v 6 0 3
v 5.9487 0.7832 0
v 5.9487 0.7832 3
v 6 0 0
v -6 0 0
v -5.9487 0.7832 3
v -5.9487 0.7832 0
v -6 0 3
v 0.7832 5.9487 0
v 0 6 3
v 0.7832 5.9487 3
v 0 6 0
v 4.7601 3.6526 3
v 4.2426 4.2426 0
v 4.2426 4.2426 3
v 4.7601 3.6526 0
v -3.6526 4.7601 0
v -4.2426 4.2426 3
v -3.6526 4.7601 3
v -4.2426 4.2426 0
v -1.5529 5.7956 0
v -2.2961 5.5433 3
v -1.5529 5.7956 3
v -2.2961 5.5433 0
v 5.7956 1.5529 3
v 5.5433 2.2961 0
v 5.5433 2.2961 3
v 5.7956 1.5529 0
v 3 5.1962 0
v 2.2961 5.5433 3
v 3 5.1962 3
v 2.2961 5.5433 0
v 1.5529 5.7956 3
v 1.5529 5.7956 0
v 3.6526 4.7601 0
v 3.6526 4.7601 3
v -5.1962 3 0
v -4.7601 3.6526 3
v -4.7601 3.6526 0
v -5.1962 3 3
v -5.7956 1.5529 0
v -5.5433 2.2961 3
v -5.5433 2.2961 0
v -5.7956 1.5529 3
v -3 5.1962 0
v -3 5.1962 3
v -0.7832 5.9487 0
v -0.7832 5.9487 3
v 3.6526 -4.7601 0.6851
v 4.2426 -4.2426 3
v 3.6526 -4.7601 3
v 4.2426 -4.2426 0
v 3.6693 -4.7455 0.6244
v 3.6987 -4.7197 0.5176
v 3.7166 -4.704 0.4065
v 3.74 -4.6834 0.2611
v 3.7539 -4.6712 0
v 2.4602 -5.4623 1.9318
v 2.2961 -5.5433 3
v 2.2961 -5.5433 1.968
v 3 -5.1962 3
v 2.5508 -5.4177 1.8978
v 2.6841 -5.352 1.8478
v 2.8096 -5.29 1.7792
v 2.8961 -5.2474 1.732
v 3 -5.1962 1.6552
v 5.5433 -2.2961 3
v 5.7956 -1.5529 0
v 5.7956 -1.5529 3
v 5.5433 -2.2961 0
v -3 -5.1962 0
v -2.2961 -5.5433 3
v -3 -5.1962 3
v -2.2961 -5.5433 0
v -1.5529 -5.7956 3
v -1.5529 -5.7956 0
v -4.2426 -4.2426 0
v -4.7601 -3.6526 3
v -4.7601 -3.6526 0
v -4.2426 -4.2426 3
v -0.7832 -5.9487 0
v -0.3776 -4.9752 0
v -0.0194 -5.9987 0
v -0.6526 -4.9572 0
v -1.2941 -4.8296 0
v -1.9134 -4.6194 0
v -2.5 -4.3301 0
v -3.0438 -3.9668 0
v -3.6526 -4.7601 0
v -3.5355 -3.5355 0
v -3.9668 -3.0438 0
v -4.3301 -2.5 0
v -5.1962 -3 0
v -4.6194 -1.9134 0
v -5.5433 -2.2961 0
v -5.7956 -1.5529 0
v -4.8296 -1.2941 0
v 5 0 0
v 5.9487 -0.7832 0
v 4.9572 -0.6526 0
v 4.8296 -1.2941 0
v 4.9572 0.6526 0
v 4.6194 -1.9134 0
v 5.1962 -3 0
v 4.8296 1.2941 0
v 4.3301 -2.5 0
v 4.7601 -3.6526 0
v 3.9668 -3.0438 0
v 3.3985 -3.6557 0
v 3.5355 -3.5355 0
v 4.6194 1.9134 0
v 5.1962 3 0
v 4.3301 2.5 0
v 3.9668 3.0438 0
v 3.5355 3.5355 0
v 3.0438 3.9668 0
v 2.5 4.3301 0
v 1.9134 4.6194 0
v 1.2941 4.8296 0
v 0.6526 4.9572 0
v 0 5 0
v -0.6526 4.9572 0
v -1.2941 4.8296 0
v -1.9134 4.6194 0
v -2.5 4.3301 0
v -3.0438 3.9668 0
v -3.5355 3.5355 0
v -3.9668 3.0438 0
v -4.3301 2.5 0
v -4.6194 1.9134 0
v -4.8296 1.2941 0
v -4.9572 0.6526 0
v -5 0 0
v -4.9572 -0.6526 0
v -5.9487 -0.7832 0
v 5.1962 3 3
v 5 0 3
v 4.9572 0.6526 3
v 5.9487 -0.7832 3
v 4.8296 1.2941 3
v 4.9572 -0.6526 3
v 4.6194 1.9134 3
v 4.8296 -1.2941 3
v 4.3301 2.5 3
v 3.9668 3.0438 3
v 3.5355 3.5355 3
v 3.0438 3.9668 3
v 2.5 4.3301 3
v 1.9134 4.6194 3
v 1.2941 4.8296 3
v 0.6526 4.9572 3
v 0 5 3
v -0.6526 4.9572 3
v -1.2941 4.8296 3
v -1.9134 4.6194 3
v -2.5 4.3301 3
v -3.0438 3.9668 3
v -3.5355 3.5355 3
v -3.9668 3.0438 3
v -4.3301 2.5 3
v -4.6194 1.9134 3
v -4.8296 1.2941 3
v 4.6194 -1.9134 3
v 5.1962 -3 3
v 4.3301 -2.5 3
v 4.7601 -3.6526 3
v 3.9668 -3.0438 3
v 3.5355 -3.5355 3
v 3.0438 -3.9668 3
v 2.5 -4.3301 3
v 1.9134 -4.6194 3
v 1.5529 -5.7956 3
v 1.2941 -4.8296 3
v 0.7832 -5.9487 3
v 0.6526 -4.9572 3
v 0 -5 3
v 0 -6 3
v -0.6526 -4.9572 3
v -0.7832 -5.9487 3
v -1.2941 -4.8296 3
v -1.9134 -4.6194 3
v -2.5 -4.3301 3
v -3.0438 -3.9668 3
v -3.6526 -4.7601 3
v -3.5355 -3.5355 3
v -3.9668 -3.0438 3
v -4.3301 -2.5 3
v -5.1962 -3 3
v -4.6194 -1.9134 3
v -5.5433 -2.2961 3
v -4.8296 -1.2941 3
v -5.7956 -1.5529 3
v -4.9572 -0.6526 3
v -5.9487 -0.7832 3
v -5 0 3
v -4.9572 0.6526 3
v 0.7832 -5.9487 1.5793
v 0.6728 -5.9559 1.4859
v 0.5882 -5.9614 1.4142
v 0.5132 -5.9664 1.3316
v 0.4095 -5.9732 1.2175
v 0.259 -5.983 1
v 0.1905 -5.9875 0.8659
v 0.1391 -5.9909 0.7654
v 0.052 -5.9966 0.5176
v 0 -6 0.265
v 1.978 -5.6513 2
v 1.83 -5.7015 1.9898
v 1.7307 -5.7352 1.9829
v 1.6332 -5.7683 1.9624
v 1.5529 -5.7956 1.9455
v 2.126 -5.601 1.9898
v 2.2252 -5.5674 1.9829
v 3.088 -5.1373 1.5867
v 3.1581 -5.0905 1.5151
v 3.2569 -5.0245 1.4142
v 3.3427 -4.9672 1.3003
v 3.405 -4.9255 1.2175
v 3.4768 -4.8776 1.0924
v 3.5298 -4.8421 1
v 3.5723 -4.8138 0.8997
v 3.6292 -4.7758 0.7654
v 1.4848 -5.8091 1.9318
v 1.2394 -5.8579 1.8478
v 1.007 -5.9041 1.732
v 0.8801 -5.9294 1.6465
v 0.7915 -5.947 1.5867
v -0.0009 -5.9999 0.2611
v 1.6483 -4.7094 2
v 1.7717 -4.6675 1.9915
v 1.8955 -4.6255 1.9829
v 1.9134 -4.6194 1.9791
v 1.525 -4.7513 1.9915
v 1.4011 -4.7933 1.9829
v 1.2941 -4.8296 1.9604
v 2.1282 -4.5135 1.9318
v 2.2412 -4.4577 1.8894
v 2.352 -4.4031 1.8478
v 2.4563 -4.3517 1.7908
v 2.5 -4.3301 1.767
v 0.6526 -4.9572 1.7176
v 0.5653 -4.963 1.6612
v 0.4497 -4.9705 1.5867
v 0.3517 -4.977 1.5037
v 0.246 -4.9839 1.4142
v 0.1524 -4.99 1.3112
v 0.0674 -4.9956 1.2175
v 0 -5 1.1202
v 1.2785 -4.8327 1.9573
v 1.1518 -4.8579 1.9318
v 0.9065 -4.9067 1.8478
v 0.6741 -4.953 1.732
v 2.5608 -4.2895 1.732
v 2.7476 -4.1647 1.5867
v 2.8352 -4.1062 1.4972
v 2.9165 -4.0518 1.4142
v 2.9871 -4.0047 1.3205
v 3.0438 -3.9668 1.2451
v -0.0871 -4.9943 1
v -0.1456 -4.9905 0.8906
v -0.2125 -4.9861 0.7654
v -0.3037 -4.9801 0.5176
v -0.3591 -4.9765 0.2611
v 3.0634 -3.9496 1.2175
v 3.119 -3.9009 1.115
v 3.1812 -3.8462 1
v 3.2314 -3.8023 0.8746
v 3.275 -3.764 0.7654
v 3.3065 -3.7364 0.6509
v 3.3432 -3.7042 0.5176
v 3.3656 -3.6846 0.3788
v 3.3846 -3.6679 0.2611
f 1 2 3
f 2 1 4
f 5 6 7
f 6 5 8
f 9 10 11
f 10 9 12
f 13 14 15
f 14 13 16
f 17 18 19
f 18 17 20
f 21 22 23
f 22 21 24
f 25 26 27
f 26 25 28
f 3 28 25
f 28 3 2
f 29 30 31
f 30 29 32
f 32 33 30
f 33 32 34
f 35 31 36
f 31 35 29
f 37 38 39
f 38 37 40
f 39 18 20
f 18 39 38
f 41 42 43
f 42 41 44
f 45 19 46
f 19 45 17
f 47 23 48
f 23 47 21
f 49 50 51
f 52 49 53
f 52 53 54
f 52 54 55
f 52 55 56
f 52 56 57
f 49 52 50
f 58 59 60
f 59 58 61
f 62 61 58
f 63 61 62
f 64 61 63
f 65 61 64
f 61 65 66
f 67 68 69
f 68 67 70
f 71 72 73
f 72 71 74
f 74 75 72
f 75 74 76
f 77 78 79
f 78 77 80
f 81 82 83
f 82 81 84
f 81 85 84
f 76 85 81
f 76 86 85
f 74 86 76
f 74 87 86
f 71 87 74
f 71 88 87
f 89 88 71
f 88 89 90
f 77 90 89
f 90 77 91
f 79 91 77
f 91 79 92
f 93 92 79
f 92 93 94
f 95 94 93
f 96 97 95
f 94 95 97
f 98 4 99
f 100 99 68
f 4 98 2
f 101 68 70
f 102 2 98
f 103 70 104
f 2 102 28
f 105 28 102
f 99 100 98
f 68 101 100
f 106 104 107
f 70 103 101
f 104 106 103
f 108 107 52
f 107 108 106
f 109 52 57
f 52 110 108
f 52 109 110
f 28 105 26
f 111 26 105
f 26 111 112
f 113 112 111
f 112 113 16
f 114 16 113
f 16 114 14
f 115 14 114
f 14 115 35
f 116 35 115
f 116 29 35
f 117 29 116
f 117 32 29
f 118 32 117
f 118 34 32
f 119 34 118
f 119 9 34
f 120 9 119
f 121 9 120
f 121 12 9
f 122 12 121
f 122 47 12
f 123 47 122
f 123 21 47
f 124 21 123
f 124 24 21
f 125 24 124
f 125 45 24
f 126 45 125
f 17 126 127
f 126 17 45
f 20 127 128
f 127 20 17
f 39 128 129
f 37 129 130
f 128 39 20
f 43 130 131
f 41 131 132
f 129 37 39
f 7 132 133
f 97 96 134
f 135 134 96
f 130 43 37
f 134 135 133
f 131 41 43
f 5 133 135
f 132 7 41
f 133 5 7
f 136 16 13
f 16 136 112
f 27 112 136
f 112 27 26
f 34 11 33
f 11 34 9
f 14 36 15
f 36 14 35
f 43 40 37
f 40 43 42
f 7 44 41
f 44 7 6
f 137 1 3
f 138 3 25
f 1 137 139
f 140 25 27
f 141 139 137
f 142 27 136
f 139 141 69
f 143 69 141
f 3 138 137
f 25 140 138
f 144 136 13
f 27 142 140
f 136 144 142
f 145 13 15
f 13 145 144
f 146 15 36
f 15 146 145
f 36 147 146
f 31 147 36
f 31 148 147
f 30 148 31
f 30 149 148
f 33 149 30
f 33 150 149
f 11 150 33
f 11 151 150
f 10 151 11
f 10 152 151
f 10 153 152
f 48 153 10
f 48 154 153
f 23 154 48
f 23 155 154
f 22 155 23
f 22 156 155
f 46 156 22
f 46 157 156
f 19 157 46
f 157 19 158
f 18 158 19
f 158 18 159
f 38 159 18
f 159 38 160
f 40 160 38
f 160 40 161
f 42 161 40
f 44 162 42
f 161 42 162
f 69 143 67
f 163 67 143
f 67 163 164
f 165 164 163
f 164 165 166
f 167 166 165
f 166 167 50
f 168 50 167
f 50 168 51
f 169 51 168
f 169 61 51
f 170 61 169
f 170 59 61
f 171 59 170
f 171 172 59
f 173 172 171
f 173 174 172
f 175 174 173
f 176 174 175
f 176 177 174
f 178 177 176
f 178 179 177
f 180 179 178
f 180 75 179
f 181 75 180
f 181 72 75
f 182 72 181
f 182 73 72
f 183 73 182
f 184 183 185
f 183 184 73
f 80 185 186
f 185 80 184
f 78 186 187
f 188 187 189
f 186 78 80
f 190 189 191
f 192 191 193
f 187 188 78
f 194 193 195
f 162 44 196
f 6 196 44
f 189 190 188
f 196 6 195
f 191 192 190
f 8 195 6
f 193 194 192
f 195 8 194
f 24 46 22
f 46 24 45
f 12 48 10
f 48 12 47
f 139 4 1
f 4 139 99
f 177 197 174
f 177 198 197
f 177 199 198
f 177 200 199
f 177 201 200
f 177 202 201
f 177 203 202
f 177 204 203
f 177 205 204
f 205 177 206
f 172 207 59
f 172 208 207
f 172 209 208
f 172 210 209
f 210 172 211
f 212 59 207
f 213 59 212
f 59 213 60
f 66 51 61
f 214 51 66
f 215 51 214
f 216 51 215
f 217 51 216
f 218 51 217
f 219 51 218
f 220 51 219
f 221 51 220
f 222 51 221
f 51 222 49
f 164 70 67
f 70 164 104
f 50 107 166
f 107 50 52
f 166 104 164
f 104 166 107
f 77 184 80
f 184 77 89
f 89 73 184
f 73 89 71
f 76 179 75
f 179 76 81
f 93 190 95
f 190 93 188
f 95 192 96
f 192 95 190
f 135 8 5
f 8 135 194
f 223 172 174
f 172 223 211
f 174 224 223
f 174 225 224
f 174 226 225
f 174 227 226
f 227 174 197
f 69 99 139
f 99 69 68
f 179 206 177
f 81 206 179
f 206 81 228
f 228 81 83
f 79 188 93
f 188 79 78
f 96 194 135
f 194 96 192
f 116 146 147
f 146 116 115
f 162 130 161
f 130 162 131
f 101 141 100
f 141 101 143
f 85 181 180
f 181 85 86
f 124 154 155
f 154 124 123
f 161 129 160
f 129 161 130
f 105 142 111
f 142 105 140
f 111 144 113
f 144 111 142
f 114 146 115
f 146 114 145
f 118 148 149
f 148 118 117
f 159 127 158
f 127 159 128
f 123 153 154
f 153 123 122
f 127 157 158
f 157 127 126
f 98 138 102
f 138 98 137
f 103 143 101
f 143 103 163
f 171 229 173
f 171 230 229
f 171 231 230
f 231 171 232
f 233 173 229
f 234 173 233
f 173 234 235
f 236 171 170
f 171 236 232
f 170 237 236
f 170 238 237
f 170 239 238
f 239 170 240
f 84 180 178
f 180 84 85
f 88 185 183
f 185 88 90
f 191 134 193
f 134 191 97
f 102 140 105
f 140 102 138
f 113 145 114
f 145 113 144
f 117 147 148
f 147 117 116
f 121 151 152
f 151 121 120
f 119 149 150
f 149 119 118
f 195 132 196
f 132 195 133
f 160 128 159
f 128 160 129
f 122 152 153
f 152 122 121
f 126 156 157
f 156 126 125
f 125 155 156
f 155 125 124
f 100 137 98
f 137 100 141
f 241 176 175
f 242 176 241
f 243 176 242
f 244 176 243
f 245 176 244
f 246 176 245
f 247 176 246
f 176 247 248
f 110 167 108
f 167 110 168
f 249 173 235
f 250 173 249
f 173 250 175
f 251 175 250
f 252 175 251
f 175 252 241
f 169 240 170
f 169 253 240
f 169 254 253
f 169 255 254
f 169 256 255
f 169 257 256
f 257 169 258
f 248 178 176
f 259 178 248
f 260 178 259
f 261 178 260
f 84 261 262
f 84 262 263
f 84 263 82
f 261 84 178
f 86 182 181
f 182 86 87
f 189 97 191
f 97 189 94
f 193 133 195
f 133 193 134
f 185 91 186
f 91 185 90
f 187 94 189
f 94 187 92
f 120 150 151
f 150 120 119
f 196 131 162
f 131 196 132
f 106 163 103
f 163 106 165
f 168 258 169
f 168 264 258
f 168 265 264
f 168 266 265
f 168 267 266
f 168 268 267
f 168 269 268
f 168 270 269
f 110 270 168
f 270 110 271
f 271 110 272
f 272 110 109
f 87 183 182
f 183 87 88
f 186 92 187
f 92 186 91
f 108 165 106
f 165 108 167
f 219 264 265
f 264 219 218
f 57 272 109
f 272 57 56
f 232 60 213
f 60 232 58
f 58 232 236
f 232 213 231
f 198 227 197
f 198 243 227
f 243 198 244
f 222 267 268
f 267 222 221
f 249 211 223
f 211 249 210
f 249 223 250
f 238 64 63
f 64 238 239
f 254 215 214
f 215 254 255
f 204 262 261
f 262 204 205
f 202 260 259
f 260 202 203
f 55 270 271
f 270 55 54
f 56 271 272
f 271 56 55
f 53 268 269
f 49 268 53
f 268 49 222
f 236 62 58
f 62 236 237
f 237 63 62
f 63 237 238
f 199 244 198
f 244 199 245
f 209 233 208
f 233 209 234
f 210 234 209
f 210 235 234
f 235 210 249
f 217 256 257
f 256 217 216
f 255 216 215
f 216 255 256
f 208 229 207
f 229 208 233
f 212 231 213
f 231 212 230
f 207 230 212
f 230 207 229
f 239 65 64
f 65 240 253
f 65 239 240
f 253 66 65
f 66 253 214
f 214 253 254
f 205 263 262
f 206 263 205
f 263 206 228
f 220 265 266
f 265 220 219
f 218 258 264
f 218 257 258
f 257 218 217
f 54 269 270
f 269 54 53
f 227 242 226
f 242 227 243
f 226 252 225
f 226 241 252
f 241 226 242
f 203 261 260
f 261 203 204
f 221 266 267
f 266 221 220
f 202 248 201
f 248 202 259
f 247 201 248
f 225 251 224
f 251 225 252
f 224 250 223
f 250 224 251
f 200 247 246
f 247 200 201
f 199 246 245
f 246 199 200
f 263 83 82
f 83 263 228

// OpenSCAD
// file: ../build_environments.scad
// build_environments.scad: modules to build level sections
//

module pool(diameter=10.0, wall_height=2.0, step_width=3.0, connections=[])
{
    difference() {
        union() {
        difference() {
            cylinder(h=0.5,r1=diameter+step_width,r2=diameter+step_width,$fn=48);
            translate([0,0,-0.1])
                cylinder(h=0.7,r1=diameter,r2=diameter,$fn=48);
        }
        difference() {
            cylinder(h=wall_height,r1=diameter+step_width+1.0,r2=diameter+step_width+1.0,$fn=48);
            translate([0,0,-0.1])
                cylinder(h=wall_height+0.2,r1=diameter+step_width,r2=diameter+step_width,$fn=48);
        }
        }
    
        for (c = connections)
        {
            rotate([0,90,0]) {
                angle = atan2(c[1],c[0]);
                rotate([-angle,0,0]) {
                    cylinder(h=diameter+5.0,r1=c[2],r2=c[2],$fn=48);
                }
            }
        }
    }
}

module straight(length=10.0, width=2.0, dy1=0.0, dy2=0.0, dz=0.0)
{
    dims = [0, 0, 0, 0, 0, (dz/length)];
    matrix = [
        [ 1, dims[0], dims[1], 0 ],
        [ dims[2], 1, dims[4], 0 ],
        [ dims[5], dims[3], 1, 0 ],
        [ 0, 0, 0, 1 ]
    ];
    multmatrix(matrix)
    difference() {
        translate([dy1,0,0])
        union() {
            rotate([0,90,0]) {
                difference() {
                    cylinder(h=(length-dy1-dy2),r1=width+1.0,r2=width+1.0,$fn=24);
                    translate([0,0,-0.1])
                        cylinder(h=(length-dy1-dy2+0.2),r1=width,r2=width,$fn=24);
                }
                difference() {
                    cylinder(h=1.0,r1=width+2.0,r2=width+2.0,$fn=24);
                    translate([0,0,-0.1])
                        cylinder(h=1.2,r1=width,r2=width,$fn=24);
                }
                translate([0,0,(length-dy1-dy2)-1.0]) {
                    difference() {
                        cylinder(h=1.0,r1=width+2.0,r2=width+2.0,$fn=24);
                        translate([0,0,-0.1])
                            cylinder(h=1.2,r1=width,r2=width,$fn=24);
                    }
                }
            }
        }
        translate([0,0,-(2*width+4.0)/2])
            cube([3*length,3*length,2*width+4.0],center=true);
    }
}

module curve(p0=[0,0], center=[0,0], dir=1, angle=0.0, width=2.0)
{
    radius = sqrt((p0[0]-center[0])*(p0[0]-center[0]) + (p0[1]-center[1])*(p0[1]-center[1]));
    if (dir == 0) {
        difference() {
            rotate([0,0,-90])
            difference() {
                rotate_extrude(angle = angle, convexity = 10, $fn=32)
                    translate([radius, 0, 0])
                        circle(r = width+1.0,$fn=24);
                rotate([0,0,-1.0])
                    rotate_extrude(angle = angle+2.0, convexity = 10, $fn=32)
                        translate([radius, 0, 0])
                            circle(r = width,$fn=24);
            }
            translate([0,0,-(2*width+4.0)/2])
                cube([5*radius,5*radius,2*width+4.0],center=true);
        }
    }
    else {
        difference() {
            rotate([0,0,90])
            difference() {
                rotate_extrude(angle = -angle, convexity = 10, $fn=32)
                    translate([radius, 0, 0])
                        circle(r = width+1.0,$fn=24);
                rotate([0,0,1.0])
                    rotate_extrude(angle = -angle-2.0, convexity = 10, $fn=32)
                        translate([radius, 0, 0])
                            circle(r = width,$fn=24);
            }
            translate([0,0,-(2*width+4.0)/2])
                cube([5*radius,5*radius,2*width+4.0],center=true);
        }
    }

}

// test pool
//pool(diameter=12.0000, wall_height=3.0000, step_width=3.0000, connections=[[0.0000,-26.0000,2.0000], [23.6074,0.0000,2.0000]]);

// test straight, slope
//straight(length=26.0000, width=2.0000, dy1=11.8322, dy2=6.7082, dz=0.0000);
//straight(length=29.1549, width=12.0000, dy1=0.0000, dy2=0.0000, dz=-15.0000);

// test curve
//curve(p0=[23.6074, 0.0000], center=[23.6074, 5.0000], dir=0, angle=60.1011, width=2.0000);
//curve(p0=[33.6426, 12.4219], center=[37.9771, 9.9295], dir=1, angle=120.4627, width=2.0000);
// main file
use <../build_environments.scad>;
pool(diameter=5.0000, wall_height=3.0000, step_width=0.0000, connections=[[7.0000,-20.0000,2.0000]]);
